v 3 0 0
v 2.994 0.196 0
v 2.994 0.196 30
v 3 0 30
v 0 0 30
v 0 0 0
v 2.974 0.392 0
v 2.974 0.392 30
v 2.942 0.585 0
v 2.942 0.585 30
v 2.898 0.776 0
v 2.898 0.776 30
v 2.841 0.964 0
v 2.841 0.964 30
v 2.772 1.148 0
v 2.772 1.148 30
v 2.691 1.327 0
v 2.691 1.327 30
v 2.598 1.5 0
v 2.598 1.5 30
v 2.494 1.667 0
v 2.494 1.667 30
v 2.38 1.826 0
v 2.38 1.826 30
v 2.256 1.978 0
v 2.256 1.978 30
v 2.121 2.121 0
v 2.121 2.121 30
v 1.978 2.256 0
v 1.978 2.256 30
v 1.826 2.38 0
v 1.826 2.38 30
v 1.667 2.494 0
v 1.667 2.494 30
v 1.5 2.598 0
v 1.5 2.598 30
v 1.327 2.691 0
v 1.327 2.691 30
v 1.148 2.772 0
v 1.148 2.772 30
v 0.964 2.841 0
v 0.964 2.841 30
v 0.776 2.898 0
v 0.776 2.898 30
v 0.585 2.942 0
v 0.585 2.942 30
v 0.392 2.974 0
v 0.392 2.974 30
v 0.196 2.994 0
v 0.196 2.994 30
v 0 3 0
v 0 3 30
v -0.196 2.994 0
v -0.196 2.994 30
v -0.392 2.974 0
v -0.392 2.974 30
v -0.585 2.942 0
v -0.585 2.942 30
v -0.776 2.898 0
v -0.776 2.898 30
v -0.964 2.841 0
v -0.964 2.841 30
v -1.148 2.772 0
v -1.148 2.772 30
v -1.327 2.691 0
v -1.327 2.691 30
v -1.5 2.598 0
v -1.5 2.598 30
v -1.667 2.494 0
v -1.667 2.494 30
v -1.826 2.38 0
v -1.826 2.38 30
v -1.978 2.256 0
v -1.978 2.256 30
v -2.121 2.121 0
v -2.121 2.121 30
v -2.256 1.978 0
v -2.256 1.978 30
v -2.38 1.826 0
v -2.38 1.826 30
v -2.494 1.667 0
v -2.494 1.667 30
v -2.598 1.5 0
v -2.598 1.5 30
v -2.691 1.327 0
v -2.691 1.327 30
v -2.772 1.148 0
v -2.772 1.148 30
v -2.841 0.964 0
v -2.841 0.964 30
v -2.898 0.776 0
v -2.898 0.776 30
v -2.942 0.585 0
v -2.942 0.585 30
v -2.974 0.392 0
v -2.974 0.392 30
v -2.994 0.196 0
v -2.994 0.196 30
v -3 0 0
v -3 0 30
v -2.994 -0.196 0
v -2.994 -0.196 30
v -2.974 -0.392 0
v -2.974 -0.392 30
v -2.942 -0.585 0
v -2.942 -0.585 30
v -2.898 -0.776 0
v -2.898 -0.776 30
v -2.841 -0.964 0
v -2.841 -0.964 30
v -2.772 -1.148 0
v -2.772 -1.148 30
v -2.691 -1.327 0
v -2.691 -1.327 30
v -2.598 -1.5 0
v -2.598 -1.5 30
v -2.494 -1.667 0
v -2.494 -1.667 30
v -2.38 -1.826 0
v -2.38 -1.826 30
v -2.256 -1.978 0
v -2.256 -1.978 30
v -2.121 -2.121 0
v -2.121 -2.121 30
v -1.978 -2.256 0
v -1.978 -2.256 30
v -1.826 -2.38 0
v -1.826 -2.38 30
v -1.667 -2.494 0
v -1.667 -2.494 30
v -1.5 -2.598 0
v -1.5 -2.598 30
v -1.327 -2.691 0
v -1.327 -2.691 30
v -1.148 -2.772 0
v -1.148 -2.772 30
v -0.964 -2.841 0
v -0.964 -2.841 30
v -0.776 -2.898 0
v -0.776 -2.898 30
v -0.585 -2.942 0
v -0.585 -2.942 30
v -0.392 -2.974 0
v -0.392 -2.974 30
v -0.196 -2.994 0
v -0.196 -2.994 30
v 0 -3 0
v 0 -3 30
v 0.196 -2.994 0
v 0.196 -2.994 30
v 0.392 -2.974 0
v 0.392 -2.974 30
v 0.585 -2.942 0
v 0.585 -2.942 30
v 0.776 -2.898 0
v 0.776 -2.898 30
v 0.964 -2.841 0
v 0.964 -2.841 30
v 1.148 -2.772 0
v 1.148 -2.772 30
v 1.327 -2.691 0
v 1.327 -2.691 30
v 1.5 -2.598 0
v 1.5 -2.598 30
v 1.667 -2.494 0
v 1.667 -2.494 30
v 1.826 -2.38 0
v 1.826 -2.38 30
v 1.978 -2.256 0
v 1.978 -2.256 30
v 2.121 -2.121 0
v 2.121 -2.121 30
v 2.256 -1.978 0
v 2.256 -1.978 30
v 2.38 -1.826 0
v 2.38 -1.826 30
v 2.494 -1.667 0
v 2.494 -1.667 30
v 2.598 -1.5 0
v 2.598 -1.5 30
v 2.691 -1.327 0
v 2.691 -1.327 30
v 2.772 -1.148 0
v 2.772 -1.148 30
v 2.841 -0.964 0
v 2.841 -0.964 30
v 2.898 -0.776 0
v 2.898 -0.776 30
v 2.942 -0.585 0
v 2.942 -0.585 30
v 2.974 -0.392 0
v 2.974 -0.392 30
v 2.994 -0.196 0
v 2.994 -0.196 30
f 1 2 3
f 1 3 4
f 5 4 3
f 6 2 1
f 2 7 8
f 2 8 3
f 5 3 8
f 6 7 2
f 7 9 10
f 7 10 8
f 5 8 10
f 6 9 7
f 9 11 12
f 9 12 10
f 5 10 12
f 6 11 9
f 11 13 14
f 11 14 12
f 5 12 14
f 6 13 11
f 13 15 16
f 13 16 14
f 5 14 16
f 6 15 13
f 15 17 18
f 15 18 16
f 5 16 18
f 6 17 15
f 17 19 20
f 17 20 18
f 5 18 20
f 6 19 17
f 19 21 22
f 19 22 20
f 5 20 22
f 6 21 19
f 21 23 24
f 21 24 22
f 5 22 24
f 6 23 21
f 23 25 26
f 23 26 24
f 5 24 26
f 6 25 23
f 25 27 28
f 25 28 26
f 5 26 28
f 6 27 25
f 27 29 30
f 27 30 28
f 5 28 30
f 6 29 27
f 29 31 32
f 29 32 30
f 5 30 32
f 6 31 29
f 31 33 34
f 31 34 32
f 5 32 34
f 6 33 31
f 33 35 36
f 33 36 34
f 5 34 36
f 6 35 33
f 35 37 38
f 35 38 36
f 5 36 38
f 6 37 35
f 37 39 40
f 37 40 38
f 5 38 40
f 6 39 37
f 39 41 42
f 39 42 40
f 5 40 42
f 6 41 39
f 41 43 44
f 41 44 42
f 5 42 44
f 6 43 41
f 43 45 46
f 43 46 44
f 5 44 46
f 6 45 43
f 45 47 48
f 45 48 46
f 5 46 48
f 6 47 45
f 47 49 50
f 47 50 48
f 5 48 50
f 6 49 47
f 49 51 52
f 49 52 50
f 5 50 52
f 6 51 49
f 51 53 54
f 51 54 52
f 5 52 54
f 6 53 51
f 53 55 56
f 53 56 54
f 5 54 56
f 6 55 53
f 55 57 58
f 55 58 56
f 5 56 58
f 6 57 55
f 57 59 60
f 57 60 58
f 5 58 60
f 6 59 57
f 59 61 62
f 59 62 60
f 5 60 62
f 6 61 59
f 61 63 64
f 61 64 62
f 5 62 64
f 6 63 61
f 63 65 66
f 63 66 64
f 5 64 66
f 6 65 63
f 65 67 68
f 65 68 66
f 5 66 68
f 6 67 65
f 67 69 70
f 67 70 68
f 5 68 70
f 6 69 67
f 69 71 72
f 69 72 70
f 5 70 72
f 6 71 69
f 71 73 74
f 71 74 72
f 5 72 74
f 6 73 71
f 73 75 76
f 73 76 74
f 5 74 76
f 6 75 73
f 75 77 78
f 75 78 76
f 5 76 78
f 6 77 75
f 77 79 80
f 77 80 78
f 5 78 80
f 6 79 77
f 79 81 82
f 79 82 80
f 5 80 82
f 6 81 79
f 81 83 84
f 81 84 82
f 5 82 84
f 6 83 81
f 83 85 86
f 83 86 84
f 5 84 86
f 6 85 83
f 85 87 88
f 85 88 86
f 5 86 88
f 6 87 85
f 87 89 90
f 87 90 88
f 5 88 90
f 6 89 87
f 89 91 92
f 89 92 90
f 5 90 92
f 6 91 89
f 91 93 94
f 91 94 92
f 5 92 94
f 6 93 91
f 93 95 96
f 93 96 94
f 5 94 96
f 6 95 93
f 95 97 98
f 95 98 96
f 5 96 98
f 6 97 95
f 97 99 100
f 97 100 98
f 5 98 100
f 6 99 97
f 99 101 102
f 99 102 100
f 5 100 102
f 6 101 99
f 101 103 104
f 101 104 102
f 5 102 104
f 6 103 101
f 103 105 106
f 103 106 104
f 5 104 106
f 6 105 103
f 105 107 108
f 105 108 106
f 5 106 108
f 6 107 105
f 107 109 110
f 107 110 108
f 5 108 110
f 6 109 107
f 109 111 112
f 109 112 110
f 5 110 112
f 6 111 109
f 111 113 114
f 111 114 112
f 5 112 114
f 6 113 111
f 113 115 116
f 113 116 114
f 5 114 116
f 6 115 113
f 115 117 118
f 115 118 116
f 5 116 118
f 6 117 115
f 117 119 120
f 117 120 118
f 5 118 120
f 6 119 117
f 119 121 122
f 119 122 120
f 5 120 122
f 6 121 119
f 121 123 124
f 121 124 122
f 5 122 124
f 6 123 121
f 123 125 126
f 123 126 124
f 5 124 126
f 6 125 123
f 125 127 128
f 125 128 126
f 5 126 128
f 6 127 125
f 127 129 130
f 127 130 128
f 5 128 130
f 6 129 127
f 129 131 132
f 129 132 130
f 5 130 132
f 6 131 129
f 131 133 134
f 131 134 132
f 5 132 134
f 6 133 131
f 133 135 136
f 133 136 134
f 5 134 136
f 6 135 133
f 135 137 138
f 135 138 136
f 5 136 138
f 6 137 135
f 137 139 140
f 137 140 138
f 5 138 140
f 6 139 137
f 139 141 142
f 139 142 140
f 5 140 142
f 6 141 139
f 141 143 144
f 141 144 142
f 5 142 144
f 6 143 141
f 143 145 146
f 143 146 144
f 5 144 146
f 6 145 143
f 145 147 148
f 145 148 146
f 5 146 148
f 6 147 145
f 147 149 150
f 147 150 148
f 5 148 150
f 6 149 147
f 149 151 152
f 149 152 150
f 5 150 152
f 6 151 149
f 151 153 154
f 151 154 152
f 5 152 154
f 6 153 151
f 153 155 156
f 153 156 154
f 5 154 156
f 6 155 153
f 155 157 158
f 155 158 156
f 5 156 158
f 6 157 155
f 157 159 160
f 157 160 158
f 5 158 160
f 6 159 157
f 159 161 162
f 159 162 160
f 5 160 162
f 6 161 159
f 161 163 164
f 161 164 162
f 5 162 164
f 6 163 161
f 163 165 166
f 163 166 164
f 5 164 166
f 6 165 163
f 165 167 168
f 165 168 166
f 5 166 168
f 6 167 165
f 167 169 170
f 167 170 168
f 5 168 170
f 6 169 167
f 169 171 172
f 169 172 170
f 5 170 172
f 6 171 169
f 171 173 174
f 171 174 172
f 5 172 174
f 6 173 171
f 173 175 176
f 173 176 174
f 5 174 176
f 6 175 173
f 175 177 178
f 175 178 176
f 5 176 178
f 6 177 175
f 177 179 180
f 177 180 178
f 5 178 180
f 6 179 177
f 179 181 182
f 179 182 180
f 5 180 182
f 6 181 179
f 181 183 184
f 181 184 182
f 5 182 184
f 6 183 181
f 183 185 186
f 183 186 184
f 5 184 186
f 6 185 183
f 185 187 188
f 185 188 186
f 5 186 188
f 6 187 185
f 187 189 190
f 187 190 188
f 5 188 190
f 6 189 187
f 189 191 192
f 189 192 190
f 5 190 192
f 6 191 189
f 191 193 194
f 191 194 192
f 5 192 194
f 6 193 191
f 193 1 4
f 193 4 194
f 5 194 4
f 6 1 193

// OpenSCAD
// Original MechIntel educational model. CC0-1.0. Units: mm.
// Not a standardized or load-rated component.
$fn=96;
outer_diameter=6;
inner_diameter=0;
height=30;
difference(){ cylinder(d=outer_diameter,h=height); if(inner_diameter>0) translate([0,0,-1]) cylinder(d=inner_diameter,h=height+2); }
